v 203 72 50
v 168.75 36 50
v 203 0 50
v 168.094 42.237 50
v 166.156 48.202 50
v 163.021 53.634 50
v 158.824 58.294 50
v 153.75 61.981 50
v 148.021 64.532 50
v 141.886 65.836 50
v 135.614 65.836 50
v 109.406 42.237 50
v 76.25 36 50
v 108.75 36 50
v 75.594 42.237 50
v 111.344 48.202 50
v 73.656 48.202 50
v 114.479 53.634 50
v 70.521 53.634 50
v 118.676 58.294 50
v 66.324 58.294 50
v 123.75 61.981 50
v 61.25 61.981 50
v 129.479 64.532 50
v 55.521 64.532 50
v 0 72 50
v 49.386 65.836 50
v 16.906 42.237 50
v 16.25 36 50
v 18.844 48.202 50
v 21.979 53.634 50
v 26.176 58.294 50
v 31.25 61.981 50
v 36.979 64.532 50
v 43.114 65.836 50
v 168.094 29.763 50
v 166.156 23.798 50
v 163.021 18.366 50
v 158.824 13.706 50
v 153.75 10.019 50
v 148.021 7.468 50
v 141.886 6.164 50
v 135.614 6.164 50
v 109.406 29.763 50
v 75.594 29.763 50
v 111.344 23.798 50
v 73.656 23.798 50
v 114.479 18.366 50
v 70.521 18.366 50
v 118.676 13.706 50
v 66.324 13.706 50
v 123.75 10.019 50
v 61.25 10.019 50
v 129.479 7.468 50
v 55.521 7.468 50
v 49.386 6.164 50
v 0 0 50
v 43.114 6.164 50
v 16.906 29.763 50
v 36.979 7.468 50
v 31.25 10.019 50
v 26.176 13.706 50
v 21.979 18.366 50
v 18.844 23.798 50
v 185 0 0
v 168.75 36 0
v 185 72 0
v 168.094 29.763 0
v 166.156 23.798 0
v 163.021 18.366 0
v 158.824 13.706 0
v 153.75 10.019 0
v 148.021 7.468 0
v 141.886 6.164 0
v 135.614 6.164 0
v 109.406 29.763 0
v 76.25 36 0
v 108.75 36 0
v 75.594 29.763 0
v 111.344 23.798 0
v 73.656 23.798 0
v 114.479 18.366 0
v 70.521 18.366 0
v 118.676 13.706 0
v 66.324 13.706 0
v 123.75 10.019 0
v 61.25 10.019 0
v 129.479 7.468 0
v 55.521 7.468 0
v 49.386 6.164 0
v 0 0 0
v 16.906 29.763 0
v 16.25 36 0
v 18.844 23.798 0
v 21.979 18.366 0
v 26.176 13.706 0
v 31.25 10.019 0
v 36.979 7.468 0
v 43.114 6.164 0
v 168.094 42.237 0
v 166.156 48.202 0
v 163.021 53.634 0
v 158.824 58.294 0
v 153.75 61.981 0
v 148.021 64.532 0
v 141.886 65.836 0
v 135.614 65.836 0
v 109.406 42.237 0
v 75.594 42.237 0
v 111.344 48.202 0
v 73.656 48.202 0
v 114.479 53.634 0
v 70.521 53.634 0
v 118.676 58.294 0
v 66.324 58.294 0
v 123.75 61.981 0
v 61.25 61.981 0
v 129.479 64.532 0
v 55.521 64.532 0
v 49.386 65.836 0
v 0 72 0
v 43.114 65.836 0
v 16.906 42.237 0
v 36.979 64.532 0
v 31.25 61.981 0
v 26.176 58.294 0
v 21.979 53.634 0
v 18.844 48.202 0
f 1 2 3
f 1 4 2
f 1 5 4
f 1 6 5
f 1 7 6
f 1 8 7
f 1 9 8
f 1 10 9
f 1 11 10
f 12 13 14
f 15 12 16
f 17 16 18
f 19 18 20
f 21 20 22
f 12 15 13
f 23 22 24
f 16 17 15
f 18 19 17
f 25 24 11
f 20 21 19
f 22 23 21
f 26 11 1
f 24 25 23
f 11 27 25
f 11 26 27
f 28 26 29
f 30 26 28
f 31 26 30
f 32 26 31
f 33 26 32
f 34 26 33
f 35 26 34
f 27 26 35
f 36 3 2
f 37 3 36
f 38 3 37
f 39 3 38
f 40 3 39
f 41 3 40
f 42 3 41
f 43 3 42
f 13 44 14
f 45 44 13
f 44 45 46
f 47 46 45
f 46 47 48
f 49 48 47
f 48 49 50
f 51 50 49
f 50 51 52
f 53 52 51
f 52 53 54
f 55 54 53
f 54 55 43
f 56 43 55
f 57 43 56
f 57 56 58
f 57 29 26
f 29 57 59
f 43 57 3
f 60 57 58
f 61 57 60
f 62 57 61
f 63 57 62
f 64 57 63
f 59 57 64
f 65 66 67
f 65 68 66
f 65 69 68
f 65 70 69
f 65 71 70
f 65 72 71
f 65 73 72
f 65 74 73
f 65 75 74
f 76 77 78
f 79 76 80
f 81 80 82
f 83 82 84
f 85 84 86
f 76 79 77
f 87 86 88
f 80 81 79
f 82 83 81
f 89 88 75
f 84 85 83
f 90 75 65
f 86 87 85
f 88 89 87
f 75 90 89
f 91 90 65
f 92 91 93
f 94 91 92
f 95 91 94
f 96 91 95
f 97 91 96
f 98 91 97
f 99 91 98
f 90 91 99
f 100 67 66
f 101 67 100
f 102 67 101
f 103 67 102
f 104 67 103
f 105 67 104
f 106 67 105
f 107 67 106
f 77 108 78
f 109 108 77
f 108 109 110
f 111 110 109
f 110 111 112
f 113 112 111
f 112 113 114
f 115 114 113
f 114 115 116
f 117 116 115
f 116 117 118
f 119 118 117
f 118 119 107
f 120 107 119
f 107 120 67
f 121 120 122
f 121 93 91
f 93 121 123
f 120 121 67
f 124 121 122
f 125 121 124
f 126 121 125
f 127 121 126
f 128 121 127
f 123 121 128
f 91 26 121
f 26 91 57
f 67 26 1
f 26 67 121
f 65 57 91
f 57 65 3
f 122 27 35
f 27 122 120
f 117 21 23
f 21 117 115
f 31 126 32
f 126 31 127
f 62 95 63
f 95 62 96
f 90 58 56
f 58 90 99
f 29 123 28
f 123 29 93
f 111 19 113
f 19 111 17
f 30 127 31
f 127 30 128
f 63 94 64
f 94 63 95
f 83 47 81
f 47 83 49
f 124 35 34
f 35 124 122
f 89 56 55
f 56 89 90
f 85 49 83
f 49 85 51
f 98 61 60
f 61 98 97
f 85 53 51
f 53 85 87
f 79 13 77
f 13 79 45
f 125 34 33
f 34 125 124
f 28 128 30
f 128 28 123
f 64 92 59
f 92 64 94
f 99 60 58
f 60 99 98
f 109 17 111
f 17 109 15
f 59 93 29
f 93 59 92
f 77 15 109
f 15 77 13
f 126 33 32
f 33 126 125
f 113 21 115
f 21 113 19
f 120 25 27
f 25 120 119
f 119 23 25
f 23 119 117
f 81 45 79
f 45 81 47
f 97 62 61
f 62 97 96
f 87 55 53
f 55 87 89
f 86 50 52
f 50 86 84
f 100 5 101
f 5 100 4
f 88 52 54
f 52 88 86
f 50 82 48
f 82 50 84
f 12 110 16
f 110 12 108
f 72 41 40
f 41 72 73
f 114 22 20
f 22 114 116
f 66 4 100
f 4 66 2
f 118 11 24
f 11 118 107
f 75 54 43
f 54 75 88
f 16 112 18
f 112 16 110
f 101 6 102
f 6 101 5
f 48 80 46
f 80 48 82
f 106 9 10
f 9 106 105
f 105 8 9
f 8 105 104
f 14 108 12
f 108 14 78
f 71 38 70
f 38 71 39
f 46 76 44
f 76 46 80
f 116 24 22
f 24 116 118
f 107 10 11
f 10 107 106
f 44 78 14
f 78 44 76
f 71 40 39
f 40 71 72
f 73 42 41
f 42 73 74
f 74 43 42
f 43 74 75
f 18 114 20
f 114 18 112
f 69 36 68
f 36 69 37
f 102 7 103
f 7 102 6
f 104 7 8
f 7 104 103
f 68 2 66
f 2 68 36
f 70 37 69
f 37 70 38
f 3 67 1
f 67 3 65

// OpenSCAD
x_pos_cube = 185;
y_pos_cube = 72;
z_pos_cube = 50;

x_pos_cyl1 = (x_pos_cube/10)*2.5;
y_pos_cyl1 = y_pos_cube/2;
z_pos_cyl1 = z_pos_cube+1;

x_pos_cyl2 = (x_pos_cube/10)*7.5;
y_pos_cyl2 = y_pos_cube/2;
z_pos_cyl2 = z_pos_cube+1;

r_cyl = 30; // 59mm durchmesser ca
h_cyl = 52;

x_pos_tri = x_pos_cube;
y_pos_tri = y_pos_cube/2;



difference() {
    cube([x_pos_cube, y_pos_cube, z_pos_cube]);

    translate([x_pos_cyl1, y_pos_cyl1, z_pos_cyl1]) {
        rotate([0, 180, 0]) {
            cylinder(r=r_cyl, h=h_cyl);
        }
    }

    translate([x_pos_cyl2, y_pos_cyl2, z_pos_cyl2]) {
        rotate([0, 180, 0]) {
            cylinder(r=r_cyl, h=h_cyl);
        }
    }
}

translate([0, 72, 0]) {
    rotate([90, 0, 0]) {
        linear_extrude(height = 72)
        polygon(points=[[185, 0], [185, 50], [203, 50]]);
    }
}
